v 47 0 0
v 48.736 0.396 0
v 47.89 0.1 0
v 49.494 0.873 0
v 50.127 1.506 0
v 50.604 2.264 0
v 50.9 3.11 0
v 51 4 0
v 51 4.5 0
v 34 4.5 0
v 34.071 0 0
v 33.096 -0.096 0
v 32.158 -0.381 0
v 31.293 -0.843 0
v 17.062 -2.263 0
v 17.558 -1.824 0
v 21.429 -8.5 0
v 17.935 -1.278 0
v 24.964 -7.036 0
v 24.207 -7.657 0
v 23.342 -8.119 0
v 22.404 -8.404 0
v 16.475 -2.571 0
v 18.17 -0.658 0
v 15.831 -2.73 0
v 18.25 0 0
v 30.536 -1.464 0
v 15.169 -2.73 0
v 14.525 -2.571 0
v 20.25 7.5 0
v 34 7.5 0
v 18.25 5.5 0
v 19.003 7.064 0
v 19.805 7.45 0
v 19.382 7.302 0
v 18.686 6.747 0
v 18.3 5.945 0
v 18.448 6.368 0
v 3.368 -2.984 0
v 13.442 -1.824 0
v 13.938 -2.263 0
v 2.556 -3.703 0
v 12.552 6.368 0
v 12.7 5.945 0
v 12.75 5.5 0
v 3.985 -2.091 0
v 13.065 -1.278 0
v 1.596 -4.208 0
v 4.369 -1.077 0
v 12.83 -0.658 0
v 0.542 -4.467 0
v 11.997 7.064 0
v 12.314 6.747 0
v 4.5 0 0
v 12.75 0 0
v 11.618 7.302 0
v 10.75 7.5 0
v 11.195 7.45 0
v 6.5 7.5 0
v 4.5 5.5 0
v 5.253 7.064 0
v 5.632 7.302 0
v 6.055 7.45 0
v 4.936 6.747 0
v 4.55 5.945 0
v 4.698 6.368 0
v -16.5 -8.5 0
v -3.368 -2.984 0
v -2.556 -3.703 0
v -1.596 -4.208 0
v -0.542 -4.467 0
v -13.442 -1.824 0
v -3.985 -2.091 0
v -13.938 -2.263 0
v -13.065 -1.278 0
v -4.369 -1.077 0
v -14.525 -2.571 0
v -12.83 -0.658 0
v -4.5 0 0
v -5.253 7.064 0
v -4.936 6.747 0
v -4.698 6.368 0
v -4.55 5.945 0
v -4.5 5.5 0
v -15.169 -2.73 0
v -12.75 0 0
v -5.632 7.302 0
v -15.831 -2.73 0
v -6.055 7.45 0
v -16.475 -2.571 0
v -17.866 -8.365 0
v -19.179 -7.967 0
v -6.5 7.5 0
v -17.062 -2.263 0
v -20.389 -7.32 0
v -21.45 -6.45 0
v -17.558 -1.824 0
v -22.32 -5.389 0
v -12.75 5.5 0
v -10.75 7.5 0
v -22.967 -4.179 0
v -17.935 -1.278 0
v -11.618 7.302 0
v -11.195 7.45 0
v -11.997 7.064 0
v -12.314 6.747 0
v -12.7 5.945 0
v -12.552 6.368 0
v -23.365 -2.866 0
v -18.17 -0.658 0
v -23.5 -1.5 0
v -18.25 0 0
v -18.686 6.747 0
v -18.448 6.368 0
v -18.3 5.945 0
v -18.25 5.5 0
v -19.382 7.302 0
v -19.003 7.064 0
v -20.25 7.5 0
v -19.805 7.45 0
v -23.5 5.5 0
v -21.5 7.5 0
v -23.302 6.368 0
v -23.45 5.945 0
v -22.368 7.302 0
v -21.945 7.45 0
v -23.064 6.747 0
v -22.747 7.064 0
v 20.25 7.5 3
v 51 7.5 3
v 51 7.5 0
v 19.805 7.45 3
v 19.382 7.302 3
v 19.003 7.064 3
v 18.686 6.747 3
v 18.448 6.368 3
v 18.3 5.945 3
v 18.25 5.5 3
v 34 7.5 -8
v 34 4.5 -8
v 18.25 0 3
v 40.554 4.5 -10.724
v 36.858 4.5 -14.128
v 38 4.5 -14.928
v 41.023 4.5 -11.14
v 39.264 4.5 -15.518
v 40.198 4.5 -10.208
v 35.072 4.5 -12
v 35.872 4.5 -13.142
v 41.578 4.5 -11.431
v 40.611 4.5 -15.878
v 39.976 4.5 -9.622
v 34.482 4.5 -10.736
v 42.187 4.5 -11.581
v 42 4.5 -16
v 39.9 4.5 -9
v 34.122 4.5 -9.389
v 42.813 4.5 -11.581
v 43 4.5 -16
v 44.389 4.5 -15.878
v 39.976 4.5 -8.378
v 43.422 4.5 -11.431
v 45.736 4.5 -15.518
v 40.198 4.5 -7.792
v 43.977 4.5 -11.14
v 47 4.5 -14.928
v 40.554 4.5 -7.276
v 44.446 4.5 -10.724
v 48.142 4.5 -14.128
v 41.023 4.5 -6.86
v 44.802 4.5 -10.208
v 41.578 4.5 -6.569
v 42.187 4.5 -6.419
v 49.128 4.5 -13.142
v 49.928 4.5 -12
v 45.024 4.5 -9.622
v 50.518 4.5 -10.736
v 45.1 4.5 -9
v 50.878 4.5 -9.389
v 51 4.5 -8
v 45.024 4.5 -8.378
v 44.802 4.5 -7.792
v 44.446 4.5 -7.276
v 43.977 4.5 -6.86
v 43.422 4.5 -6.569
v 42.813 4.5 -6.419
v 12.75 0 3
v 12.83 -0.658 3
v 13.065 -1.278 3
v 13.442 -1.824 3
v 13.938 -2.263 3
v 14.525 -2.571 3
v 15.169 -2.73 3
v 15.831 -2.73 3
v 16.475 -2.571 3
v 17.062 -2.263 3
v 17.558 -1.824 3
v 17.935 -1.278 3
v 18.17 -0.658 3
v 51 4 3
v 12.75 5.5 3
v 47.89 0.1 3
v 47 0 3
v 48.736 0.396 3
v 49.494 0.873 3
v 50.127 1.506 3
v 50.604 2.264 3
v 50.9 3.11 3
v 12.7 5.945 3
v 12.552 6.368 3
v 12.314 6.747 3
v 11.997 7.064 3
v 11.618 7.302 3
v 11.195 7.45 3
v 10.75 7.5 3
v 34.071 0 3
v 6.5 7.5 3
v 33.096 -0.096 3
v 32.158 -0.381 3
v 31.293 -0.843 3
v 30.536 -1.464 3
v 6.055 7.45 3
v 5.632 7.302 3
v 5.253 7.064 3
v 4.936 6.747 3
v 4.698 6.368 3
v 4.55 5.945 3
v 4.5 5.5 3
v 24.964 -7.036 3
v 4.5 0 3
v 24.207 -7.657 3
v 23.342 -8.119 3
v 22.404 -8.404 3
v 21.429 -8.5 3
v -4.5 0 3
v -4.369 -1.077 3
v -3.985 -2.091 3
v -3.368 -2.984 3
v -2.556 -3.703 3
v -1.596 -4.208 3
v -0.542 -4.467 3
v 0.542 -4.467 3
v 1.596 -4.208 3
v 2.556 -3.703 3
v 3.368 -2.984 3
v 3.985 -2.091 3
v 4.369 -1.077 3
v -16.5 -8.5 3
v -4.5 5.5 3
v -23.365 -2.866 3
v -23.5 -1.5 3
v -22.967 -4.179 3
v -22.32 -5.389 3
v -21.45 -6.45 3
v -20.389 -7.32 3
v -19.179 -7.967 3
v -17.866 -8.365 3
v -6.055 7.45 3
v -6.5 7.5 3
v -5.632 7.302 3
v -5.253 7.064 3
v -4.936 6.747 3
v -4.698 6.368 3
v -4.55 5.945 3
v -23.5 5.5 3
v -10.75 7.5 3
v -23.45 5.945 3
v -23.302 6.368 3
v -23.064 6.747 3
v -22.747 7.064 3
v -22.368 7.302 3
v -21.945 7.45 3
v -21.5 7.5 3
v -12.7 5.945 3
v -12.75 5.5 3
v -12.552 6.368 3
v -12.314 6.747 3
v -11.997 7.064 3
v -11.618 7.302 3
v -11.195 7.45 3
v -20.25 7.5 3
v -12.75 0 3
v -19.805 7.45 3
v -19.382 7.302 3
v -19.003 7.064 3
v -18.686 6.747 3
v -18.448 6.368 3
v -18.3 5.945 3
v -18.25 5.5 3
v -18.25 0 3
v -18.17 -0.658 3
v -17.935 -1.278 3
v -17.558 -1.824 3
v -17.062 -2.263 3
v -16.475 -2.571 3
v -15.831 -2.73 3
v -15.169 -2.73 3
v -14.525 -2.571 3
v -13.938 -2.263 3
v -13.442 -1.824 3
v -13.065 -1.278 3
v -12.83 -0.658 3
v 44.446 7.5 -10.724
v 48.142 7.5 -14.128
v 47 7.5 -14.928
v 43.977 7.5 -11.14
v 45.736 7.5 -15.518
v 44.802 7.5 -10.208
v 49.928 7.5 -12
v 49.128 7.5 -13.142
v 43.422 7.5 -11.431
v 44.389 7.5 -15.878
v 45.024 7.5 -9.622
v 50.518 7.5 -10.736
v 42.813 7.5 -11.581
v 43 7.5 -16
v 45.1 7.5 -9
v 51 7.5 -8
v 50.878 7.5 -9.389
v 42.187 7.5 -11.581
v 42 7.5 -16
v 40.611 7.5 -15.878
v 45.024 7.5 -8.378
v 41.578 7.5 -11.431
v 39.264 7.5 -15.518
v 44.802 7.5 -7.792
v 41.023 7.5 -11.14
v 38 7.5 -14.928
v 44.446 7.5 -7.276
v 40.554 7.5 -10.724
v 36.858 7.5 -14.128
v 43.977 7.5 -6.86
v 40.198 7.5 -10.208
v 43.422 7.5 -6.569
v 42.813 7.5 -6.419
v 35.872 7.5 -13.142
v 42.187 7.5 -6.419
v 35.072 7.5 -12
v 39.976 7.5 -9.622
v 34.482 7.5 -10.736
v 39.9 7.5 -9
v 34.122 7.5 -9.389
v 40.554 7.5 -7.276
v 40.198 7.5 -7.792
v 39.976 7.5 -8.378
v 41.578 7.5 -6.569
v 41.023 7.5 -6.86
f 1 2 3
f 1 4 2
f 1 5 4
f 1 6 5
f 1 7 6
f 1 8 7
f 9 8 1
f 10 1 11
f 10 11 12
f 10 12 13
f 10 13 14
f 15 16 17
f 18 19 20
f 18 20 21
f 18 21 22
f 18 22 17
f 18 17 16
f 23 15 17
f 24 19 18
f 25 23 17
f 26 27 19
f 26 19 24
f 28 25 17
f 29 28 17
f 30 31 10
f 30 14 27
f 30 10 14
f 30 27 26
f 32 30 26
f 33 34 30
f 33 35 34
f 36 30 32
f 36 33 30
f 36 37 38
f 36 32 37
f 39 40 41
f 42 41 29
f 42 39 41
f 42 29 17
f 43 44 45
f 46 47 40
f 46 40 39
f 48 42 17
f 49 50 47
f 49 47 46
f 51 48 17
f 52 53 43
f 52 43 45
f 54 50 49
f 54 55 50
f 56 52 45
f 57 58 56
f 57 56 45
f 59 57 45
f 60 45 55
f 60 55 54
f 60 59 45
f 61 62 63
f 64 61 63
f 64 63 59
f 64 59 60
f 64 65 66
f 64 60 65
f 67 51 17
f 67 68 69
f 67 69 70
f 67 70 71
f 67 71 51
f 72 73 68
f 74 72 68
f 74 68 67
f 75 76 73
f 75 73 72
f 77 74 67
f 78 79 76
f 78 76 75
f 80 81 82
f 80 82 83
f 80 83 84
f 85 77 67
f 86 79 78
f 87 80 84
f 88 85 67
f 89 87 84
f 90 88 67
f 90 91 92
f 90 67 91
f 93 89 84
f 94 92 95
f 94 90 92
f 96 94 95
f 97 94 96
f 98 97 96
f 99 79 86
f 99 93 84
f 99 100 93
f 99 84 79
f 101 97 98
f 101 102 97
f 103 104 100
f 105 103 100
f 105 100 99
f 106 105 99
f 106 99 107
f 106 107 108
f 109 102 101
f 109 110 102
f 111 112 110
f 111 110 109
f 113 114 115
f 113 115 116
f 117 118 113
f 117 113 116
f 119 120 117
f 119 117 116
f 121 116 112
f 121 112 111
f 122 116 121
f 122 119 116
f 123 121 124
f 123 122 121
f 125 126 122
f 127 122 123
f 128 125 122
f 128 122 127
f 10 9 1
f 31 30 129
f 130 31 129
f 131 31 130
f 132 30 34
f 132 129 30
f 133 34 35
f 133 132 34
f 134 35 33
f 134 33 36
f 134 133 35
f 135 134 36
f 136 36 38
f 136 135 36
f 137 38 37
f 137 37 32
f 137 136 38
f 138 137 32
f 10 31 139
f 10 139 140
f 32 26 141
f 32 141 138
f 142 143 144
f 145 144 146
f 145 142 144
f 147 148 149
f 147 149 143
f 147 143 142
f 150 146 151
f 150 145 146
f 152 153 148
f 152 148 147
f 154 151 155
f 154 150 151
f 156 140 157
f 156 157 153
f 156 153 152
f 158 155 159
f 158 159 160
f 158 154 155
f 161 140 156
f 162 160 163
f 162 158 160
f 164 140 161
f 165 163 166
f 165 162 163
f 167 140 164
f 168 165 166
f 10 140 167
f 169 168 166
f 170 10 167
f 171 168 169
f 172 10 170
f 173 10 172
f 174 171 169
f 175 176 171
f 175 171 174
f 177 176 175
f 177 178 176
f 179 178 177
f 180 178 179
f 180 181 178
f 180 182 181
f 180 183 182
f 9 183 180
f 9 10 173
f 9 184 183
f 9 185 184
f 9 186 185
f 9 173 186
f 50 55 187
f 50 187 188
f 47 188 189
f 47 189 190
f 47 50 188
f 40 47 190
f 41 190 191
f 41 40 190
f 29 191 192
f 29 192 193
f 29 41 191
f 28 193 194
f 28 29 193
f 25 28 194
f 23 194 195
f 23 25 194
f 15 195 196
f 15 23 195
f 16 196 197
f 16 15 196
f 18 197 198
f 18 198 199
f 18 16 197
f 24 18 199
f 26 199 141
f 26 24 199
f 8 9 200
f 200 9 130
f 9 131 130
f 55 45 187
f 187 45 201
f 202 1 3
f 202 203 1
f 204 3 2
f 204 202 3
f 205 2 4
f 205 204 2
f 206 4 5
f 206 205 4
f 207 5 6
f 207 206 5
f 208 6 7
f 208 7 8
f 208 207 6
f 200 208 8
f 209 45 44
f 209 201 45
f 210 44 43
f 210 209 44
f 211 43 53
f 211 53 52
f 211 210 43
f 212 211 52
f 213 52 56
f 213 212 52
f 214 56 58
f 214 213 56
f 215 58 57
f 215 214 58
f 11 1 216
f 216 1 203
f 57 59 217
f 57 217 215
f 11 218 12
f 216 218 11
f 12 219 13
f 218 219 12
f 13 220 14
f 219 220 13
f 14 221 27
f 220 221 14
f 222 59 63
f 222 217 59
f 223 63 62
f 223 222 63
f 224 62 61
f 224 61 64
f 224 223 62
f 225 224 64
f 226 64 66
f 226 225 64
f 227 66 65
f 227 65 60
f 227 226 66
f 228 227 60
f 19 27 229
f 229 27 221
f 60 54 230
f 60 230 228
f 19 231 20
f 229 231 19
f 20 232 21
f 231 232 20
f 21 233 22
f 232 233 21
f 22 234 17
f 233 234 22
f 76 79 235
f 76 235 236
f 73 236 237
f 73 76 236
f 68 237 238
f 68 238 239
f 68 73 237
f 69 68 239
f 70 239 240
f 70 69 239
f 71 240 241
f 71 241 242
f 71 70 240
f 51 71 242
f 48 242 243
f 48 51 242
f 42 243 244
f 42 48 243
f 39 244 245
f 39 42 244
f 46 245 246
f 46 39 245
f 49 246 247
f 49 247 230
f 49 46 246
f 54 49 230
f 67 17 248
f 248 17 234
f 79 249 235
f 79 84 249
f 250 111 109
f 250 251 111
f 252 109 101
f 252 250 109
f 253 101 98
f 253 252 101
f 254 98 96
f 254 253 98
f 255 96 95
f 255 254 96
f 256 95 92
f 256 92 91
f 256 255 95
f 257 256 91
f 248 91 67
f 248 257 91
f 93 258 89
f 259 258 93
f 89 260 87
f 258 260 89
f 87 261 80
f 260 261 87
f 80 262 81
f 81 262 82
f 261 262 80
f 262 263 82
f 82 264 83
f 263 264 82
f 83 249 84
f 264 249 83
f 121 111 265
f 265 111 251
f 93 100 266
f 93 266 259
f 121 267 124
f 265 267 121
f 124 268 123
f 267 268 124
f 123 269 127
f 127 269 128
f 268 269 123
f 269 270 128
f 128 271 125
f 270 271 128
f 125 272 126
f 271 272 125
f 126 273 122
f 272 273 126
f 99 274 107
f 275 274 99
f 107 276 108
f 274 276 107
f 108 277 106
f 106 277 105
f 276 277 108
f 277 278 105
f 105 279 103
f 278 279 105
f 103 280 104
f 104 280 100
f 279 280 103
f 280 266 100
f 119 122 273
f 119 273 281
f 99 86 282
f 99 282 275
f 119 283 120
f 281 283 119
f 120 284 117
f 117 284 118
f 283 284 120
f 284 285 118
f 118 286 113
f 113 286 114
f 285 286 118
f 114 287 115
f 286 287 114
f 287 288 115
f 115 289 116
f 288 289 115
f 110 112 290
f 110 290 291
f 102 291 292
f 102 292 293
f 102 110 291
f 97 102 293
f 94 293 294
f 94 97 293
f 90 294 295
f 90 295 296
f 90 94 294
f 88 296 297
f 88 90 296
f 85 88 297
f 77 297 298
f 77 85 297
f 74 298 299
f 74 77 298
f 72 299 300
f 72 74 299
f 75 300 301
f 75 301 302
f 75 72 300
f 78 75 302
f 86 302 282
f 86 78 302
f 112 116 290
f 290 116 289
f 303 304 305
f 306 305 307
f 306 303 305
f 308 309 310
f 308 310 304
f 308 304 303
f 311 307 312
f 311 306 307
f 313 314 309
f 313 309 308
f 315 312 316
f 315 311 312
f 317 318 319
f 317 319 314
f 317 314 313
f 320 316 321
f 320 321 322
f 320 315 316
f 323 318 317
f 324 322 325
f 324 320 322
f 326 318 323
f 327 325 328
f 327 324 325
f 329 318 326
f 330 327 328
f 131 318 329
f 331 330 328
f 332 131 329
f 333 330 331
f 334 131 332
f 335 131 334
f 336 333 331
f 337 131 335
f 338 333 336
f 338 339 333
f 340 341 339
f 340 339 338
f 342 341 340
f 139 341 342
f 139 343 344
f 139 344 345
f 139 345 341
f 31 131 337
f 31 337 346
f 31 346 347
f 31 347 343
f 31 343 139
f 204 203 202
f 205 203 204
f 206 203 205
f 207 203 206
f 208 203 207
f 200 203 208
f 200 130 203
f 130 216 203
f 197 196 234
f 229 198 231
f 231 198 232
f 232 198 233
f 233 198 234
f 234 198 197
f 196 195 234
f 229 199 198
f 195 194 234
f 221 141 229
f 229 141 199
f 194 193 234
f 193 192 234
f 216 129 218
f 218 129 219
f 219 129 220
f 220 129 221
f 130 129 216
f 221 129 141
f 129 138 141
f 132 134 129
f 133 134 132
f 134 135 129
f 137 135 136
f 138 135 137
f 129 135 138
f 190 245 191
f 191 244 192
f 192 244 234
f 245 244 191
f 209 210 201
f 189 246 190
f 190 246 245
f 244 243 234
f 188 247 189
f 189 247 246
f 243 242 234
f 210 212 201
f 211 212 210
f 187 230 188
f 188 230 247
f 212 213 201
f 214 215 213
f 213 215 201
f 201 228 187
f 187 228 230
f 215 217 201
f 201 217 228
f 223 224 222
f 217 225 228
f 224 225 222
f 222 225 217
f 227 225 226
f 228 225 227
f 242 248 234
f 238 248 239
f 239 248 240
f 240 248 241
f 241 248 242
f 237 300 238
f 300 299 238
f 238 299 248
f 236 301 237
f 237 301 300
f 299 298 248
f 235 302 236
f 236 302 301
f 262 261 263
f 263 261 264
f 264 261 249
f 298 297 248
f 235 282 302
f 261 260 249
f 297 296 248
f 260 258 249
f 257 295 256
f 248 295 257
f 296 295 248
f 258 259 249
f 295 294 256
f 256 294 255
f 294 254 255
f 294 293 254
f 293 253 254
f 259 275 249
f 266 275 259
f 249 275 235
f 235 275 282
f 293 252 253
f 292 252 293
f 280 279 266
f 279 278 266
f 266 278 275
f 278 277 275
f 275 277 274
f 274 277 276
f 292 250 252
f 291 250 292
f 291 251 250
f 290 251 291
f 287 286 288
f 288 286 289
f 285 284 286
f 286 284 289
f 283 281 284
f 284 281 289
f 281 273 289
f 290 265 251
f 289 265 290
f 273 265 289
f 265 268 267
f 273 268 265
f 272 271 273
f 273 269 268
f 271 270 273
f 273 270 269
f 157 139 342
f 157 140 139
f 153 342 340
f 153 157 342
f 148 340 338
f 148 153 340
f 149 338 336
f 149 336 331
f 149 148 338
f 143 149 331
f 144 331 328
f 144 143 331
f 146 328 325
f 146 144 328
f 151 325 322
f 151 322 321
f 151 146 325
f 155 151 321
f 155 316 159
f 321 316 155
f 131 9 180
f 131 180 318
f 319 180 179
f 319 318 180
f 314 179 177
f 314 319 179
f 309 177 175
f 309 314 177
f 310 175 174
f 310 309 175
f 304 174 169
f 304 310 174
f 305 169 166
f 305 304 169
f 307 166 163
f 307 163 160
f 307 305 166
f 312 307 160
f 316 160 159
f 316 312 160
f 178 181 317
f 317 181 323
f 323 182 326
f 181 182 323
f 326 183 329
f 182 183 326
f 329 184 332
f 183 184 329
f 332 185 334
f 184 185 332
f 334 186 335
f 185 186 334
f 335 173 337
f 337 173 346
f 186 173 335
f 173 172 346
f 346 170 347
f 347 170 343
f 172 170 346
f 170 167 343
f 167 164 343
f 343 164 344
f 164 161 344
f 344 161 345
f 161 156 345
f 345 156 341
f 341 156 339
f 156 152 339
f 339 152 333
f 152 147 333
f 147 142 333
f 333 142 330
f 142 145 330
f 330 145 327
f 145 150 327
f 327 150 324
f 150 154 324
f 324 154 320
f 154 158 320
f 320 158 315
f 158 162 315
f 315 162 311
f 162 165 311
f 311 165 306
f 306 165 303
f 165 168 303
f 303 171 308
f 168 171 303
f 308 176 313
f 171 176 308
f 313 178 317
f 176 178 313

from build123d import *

# Parameters (mm, degrees)
PAD_DEPTH    = 3
SKETCH001_W  = 17
SKETCH001_H  = 3
PAD001_DEPTH = 16
SKETCH002_R  = 2.6
POCKET_DEPTH = 3.001
FILLET_R     = 8
FILLET002_R  = 7
FILLET003_R  = 4
FILLET004_R  = 5
FILLET005_R  = 2


with BuildPart() as part:
    # Sketch → Pad (new body)
    with BuildSketch(Plane.XY):
        with BuildLine():
            ThreePointArc((-4.5, 0), (0, -4.5), (4.5, 0))
            Line((4.5, 0), (4.5, 7.5))
            Line((4.5, 7.5), (12.75, 7.5))
            Line((12.75, 0), (12.75, 7.5))
            ThreePointArc((12.75, 0), (15.5, -2.75), (18.25, 0))
            Line((18.25, 0), (18.25, 7.5))
            Line((18.25, 7.5), (51, 7.5))
            Line((51, 0), (51, 7.5))
            Line((32, 0), (51, 0))
            Line((23.5, -8.5), (32, 0))
            Line((-23.5, -8.5), (23.5, -8.5))
            Line((-23.5, 7.5), (-23.5, -8.5))
            Line((-23.5, 7.5), (-18.25, 7.5))
            Line((-18.25, 0), (-18.25, 7.5))
            ThreePointArc((-18.25, 0), (-15.5, -2.75), (-12.75, 0))
            Line((-12.75, 0), (-12.75, 7.5))
            Line((-12.75, 7.5), (-4.5, 7.5))
            Line((-4.5, 0), (-4.5, 7.5))
        make_face()
    extrude(amount=PAD_DEPTH)

    # Sketch001 (on Face19 of Pad) → Pad001 (join)
    with BuildSketch(Plane(origin=(0, 0, 0), x_dir=(1, 0, 0), z_dir=(0, 0, -1))):
        with Locations((42.5, -6)):
            Rectangle(SKETCH001_W, SKETCH001_H)
    extrude(amount=PAD001_DEPTH)

    # Sketch002 (on Face13 of Pad001) → Pocket (cut, through all)
    with BuildSketch(Plane.XZ.offset(-4.5)):
        with Locations((42.5, -9)):
            Circle(SKETCH002_R)
    extrude(amount=-POCKET_DEPTH, mode=Mode.SUBTRACT)

    # Fillet
    fillet_edges = [part.edges().sort_by_distance(p)[0] for p in [
        (34, 6, -16),
        (51, 6, -16),
    ]]
    fillet(fillet_edges, radius=FILLET_R)

    # Fillet002
    fillet002_edges = [part.edges().sort_by_distance(p)[0] for p in [
        (-23.5, -8.5, 1.5),
    ]]
    fillet(fillet002_edges, radius=FILLET002_R)

    # Fillet003
    fillet003_edges = [part.edges().sort_by_distance(p)[0] for p in [
        (51, 0, 1.5),
    ]]
    fillet(fillet003_edges, radius=FILLET003_R)

    # Fillet004
    fillet004_edges = [part.edges().sort_by_distance(p)[0] for p in [
        (23.5, -8.5, 1.5),
        (32, 0, 1.5),
    ]]
    fillet(fillet004_edges, radius=FILLET004_R)

    # Fillet005
    fillet005_edges = [part.edges().sort_by_distance(p)[0] for p in [
        (-23.5, 7.5, 1.5),
        (-18.25, 7.5, 1.5),
        (-12.75, 7.5, 1.5),
        (-4.5, 7.5, 1.5),
        (4.5, 7.5, 1.5),
        (12.75, 7.5, 1.5),
        (18.25, 7.5, 1.5),
    ]]
    fillet(fillet005_edges, radius=FILLET005_R)


solid = part.part
